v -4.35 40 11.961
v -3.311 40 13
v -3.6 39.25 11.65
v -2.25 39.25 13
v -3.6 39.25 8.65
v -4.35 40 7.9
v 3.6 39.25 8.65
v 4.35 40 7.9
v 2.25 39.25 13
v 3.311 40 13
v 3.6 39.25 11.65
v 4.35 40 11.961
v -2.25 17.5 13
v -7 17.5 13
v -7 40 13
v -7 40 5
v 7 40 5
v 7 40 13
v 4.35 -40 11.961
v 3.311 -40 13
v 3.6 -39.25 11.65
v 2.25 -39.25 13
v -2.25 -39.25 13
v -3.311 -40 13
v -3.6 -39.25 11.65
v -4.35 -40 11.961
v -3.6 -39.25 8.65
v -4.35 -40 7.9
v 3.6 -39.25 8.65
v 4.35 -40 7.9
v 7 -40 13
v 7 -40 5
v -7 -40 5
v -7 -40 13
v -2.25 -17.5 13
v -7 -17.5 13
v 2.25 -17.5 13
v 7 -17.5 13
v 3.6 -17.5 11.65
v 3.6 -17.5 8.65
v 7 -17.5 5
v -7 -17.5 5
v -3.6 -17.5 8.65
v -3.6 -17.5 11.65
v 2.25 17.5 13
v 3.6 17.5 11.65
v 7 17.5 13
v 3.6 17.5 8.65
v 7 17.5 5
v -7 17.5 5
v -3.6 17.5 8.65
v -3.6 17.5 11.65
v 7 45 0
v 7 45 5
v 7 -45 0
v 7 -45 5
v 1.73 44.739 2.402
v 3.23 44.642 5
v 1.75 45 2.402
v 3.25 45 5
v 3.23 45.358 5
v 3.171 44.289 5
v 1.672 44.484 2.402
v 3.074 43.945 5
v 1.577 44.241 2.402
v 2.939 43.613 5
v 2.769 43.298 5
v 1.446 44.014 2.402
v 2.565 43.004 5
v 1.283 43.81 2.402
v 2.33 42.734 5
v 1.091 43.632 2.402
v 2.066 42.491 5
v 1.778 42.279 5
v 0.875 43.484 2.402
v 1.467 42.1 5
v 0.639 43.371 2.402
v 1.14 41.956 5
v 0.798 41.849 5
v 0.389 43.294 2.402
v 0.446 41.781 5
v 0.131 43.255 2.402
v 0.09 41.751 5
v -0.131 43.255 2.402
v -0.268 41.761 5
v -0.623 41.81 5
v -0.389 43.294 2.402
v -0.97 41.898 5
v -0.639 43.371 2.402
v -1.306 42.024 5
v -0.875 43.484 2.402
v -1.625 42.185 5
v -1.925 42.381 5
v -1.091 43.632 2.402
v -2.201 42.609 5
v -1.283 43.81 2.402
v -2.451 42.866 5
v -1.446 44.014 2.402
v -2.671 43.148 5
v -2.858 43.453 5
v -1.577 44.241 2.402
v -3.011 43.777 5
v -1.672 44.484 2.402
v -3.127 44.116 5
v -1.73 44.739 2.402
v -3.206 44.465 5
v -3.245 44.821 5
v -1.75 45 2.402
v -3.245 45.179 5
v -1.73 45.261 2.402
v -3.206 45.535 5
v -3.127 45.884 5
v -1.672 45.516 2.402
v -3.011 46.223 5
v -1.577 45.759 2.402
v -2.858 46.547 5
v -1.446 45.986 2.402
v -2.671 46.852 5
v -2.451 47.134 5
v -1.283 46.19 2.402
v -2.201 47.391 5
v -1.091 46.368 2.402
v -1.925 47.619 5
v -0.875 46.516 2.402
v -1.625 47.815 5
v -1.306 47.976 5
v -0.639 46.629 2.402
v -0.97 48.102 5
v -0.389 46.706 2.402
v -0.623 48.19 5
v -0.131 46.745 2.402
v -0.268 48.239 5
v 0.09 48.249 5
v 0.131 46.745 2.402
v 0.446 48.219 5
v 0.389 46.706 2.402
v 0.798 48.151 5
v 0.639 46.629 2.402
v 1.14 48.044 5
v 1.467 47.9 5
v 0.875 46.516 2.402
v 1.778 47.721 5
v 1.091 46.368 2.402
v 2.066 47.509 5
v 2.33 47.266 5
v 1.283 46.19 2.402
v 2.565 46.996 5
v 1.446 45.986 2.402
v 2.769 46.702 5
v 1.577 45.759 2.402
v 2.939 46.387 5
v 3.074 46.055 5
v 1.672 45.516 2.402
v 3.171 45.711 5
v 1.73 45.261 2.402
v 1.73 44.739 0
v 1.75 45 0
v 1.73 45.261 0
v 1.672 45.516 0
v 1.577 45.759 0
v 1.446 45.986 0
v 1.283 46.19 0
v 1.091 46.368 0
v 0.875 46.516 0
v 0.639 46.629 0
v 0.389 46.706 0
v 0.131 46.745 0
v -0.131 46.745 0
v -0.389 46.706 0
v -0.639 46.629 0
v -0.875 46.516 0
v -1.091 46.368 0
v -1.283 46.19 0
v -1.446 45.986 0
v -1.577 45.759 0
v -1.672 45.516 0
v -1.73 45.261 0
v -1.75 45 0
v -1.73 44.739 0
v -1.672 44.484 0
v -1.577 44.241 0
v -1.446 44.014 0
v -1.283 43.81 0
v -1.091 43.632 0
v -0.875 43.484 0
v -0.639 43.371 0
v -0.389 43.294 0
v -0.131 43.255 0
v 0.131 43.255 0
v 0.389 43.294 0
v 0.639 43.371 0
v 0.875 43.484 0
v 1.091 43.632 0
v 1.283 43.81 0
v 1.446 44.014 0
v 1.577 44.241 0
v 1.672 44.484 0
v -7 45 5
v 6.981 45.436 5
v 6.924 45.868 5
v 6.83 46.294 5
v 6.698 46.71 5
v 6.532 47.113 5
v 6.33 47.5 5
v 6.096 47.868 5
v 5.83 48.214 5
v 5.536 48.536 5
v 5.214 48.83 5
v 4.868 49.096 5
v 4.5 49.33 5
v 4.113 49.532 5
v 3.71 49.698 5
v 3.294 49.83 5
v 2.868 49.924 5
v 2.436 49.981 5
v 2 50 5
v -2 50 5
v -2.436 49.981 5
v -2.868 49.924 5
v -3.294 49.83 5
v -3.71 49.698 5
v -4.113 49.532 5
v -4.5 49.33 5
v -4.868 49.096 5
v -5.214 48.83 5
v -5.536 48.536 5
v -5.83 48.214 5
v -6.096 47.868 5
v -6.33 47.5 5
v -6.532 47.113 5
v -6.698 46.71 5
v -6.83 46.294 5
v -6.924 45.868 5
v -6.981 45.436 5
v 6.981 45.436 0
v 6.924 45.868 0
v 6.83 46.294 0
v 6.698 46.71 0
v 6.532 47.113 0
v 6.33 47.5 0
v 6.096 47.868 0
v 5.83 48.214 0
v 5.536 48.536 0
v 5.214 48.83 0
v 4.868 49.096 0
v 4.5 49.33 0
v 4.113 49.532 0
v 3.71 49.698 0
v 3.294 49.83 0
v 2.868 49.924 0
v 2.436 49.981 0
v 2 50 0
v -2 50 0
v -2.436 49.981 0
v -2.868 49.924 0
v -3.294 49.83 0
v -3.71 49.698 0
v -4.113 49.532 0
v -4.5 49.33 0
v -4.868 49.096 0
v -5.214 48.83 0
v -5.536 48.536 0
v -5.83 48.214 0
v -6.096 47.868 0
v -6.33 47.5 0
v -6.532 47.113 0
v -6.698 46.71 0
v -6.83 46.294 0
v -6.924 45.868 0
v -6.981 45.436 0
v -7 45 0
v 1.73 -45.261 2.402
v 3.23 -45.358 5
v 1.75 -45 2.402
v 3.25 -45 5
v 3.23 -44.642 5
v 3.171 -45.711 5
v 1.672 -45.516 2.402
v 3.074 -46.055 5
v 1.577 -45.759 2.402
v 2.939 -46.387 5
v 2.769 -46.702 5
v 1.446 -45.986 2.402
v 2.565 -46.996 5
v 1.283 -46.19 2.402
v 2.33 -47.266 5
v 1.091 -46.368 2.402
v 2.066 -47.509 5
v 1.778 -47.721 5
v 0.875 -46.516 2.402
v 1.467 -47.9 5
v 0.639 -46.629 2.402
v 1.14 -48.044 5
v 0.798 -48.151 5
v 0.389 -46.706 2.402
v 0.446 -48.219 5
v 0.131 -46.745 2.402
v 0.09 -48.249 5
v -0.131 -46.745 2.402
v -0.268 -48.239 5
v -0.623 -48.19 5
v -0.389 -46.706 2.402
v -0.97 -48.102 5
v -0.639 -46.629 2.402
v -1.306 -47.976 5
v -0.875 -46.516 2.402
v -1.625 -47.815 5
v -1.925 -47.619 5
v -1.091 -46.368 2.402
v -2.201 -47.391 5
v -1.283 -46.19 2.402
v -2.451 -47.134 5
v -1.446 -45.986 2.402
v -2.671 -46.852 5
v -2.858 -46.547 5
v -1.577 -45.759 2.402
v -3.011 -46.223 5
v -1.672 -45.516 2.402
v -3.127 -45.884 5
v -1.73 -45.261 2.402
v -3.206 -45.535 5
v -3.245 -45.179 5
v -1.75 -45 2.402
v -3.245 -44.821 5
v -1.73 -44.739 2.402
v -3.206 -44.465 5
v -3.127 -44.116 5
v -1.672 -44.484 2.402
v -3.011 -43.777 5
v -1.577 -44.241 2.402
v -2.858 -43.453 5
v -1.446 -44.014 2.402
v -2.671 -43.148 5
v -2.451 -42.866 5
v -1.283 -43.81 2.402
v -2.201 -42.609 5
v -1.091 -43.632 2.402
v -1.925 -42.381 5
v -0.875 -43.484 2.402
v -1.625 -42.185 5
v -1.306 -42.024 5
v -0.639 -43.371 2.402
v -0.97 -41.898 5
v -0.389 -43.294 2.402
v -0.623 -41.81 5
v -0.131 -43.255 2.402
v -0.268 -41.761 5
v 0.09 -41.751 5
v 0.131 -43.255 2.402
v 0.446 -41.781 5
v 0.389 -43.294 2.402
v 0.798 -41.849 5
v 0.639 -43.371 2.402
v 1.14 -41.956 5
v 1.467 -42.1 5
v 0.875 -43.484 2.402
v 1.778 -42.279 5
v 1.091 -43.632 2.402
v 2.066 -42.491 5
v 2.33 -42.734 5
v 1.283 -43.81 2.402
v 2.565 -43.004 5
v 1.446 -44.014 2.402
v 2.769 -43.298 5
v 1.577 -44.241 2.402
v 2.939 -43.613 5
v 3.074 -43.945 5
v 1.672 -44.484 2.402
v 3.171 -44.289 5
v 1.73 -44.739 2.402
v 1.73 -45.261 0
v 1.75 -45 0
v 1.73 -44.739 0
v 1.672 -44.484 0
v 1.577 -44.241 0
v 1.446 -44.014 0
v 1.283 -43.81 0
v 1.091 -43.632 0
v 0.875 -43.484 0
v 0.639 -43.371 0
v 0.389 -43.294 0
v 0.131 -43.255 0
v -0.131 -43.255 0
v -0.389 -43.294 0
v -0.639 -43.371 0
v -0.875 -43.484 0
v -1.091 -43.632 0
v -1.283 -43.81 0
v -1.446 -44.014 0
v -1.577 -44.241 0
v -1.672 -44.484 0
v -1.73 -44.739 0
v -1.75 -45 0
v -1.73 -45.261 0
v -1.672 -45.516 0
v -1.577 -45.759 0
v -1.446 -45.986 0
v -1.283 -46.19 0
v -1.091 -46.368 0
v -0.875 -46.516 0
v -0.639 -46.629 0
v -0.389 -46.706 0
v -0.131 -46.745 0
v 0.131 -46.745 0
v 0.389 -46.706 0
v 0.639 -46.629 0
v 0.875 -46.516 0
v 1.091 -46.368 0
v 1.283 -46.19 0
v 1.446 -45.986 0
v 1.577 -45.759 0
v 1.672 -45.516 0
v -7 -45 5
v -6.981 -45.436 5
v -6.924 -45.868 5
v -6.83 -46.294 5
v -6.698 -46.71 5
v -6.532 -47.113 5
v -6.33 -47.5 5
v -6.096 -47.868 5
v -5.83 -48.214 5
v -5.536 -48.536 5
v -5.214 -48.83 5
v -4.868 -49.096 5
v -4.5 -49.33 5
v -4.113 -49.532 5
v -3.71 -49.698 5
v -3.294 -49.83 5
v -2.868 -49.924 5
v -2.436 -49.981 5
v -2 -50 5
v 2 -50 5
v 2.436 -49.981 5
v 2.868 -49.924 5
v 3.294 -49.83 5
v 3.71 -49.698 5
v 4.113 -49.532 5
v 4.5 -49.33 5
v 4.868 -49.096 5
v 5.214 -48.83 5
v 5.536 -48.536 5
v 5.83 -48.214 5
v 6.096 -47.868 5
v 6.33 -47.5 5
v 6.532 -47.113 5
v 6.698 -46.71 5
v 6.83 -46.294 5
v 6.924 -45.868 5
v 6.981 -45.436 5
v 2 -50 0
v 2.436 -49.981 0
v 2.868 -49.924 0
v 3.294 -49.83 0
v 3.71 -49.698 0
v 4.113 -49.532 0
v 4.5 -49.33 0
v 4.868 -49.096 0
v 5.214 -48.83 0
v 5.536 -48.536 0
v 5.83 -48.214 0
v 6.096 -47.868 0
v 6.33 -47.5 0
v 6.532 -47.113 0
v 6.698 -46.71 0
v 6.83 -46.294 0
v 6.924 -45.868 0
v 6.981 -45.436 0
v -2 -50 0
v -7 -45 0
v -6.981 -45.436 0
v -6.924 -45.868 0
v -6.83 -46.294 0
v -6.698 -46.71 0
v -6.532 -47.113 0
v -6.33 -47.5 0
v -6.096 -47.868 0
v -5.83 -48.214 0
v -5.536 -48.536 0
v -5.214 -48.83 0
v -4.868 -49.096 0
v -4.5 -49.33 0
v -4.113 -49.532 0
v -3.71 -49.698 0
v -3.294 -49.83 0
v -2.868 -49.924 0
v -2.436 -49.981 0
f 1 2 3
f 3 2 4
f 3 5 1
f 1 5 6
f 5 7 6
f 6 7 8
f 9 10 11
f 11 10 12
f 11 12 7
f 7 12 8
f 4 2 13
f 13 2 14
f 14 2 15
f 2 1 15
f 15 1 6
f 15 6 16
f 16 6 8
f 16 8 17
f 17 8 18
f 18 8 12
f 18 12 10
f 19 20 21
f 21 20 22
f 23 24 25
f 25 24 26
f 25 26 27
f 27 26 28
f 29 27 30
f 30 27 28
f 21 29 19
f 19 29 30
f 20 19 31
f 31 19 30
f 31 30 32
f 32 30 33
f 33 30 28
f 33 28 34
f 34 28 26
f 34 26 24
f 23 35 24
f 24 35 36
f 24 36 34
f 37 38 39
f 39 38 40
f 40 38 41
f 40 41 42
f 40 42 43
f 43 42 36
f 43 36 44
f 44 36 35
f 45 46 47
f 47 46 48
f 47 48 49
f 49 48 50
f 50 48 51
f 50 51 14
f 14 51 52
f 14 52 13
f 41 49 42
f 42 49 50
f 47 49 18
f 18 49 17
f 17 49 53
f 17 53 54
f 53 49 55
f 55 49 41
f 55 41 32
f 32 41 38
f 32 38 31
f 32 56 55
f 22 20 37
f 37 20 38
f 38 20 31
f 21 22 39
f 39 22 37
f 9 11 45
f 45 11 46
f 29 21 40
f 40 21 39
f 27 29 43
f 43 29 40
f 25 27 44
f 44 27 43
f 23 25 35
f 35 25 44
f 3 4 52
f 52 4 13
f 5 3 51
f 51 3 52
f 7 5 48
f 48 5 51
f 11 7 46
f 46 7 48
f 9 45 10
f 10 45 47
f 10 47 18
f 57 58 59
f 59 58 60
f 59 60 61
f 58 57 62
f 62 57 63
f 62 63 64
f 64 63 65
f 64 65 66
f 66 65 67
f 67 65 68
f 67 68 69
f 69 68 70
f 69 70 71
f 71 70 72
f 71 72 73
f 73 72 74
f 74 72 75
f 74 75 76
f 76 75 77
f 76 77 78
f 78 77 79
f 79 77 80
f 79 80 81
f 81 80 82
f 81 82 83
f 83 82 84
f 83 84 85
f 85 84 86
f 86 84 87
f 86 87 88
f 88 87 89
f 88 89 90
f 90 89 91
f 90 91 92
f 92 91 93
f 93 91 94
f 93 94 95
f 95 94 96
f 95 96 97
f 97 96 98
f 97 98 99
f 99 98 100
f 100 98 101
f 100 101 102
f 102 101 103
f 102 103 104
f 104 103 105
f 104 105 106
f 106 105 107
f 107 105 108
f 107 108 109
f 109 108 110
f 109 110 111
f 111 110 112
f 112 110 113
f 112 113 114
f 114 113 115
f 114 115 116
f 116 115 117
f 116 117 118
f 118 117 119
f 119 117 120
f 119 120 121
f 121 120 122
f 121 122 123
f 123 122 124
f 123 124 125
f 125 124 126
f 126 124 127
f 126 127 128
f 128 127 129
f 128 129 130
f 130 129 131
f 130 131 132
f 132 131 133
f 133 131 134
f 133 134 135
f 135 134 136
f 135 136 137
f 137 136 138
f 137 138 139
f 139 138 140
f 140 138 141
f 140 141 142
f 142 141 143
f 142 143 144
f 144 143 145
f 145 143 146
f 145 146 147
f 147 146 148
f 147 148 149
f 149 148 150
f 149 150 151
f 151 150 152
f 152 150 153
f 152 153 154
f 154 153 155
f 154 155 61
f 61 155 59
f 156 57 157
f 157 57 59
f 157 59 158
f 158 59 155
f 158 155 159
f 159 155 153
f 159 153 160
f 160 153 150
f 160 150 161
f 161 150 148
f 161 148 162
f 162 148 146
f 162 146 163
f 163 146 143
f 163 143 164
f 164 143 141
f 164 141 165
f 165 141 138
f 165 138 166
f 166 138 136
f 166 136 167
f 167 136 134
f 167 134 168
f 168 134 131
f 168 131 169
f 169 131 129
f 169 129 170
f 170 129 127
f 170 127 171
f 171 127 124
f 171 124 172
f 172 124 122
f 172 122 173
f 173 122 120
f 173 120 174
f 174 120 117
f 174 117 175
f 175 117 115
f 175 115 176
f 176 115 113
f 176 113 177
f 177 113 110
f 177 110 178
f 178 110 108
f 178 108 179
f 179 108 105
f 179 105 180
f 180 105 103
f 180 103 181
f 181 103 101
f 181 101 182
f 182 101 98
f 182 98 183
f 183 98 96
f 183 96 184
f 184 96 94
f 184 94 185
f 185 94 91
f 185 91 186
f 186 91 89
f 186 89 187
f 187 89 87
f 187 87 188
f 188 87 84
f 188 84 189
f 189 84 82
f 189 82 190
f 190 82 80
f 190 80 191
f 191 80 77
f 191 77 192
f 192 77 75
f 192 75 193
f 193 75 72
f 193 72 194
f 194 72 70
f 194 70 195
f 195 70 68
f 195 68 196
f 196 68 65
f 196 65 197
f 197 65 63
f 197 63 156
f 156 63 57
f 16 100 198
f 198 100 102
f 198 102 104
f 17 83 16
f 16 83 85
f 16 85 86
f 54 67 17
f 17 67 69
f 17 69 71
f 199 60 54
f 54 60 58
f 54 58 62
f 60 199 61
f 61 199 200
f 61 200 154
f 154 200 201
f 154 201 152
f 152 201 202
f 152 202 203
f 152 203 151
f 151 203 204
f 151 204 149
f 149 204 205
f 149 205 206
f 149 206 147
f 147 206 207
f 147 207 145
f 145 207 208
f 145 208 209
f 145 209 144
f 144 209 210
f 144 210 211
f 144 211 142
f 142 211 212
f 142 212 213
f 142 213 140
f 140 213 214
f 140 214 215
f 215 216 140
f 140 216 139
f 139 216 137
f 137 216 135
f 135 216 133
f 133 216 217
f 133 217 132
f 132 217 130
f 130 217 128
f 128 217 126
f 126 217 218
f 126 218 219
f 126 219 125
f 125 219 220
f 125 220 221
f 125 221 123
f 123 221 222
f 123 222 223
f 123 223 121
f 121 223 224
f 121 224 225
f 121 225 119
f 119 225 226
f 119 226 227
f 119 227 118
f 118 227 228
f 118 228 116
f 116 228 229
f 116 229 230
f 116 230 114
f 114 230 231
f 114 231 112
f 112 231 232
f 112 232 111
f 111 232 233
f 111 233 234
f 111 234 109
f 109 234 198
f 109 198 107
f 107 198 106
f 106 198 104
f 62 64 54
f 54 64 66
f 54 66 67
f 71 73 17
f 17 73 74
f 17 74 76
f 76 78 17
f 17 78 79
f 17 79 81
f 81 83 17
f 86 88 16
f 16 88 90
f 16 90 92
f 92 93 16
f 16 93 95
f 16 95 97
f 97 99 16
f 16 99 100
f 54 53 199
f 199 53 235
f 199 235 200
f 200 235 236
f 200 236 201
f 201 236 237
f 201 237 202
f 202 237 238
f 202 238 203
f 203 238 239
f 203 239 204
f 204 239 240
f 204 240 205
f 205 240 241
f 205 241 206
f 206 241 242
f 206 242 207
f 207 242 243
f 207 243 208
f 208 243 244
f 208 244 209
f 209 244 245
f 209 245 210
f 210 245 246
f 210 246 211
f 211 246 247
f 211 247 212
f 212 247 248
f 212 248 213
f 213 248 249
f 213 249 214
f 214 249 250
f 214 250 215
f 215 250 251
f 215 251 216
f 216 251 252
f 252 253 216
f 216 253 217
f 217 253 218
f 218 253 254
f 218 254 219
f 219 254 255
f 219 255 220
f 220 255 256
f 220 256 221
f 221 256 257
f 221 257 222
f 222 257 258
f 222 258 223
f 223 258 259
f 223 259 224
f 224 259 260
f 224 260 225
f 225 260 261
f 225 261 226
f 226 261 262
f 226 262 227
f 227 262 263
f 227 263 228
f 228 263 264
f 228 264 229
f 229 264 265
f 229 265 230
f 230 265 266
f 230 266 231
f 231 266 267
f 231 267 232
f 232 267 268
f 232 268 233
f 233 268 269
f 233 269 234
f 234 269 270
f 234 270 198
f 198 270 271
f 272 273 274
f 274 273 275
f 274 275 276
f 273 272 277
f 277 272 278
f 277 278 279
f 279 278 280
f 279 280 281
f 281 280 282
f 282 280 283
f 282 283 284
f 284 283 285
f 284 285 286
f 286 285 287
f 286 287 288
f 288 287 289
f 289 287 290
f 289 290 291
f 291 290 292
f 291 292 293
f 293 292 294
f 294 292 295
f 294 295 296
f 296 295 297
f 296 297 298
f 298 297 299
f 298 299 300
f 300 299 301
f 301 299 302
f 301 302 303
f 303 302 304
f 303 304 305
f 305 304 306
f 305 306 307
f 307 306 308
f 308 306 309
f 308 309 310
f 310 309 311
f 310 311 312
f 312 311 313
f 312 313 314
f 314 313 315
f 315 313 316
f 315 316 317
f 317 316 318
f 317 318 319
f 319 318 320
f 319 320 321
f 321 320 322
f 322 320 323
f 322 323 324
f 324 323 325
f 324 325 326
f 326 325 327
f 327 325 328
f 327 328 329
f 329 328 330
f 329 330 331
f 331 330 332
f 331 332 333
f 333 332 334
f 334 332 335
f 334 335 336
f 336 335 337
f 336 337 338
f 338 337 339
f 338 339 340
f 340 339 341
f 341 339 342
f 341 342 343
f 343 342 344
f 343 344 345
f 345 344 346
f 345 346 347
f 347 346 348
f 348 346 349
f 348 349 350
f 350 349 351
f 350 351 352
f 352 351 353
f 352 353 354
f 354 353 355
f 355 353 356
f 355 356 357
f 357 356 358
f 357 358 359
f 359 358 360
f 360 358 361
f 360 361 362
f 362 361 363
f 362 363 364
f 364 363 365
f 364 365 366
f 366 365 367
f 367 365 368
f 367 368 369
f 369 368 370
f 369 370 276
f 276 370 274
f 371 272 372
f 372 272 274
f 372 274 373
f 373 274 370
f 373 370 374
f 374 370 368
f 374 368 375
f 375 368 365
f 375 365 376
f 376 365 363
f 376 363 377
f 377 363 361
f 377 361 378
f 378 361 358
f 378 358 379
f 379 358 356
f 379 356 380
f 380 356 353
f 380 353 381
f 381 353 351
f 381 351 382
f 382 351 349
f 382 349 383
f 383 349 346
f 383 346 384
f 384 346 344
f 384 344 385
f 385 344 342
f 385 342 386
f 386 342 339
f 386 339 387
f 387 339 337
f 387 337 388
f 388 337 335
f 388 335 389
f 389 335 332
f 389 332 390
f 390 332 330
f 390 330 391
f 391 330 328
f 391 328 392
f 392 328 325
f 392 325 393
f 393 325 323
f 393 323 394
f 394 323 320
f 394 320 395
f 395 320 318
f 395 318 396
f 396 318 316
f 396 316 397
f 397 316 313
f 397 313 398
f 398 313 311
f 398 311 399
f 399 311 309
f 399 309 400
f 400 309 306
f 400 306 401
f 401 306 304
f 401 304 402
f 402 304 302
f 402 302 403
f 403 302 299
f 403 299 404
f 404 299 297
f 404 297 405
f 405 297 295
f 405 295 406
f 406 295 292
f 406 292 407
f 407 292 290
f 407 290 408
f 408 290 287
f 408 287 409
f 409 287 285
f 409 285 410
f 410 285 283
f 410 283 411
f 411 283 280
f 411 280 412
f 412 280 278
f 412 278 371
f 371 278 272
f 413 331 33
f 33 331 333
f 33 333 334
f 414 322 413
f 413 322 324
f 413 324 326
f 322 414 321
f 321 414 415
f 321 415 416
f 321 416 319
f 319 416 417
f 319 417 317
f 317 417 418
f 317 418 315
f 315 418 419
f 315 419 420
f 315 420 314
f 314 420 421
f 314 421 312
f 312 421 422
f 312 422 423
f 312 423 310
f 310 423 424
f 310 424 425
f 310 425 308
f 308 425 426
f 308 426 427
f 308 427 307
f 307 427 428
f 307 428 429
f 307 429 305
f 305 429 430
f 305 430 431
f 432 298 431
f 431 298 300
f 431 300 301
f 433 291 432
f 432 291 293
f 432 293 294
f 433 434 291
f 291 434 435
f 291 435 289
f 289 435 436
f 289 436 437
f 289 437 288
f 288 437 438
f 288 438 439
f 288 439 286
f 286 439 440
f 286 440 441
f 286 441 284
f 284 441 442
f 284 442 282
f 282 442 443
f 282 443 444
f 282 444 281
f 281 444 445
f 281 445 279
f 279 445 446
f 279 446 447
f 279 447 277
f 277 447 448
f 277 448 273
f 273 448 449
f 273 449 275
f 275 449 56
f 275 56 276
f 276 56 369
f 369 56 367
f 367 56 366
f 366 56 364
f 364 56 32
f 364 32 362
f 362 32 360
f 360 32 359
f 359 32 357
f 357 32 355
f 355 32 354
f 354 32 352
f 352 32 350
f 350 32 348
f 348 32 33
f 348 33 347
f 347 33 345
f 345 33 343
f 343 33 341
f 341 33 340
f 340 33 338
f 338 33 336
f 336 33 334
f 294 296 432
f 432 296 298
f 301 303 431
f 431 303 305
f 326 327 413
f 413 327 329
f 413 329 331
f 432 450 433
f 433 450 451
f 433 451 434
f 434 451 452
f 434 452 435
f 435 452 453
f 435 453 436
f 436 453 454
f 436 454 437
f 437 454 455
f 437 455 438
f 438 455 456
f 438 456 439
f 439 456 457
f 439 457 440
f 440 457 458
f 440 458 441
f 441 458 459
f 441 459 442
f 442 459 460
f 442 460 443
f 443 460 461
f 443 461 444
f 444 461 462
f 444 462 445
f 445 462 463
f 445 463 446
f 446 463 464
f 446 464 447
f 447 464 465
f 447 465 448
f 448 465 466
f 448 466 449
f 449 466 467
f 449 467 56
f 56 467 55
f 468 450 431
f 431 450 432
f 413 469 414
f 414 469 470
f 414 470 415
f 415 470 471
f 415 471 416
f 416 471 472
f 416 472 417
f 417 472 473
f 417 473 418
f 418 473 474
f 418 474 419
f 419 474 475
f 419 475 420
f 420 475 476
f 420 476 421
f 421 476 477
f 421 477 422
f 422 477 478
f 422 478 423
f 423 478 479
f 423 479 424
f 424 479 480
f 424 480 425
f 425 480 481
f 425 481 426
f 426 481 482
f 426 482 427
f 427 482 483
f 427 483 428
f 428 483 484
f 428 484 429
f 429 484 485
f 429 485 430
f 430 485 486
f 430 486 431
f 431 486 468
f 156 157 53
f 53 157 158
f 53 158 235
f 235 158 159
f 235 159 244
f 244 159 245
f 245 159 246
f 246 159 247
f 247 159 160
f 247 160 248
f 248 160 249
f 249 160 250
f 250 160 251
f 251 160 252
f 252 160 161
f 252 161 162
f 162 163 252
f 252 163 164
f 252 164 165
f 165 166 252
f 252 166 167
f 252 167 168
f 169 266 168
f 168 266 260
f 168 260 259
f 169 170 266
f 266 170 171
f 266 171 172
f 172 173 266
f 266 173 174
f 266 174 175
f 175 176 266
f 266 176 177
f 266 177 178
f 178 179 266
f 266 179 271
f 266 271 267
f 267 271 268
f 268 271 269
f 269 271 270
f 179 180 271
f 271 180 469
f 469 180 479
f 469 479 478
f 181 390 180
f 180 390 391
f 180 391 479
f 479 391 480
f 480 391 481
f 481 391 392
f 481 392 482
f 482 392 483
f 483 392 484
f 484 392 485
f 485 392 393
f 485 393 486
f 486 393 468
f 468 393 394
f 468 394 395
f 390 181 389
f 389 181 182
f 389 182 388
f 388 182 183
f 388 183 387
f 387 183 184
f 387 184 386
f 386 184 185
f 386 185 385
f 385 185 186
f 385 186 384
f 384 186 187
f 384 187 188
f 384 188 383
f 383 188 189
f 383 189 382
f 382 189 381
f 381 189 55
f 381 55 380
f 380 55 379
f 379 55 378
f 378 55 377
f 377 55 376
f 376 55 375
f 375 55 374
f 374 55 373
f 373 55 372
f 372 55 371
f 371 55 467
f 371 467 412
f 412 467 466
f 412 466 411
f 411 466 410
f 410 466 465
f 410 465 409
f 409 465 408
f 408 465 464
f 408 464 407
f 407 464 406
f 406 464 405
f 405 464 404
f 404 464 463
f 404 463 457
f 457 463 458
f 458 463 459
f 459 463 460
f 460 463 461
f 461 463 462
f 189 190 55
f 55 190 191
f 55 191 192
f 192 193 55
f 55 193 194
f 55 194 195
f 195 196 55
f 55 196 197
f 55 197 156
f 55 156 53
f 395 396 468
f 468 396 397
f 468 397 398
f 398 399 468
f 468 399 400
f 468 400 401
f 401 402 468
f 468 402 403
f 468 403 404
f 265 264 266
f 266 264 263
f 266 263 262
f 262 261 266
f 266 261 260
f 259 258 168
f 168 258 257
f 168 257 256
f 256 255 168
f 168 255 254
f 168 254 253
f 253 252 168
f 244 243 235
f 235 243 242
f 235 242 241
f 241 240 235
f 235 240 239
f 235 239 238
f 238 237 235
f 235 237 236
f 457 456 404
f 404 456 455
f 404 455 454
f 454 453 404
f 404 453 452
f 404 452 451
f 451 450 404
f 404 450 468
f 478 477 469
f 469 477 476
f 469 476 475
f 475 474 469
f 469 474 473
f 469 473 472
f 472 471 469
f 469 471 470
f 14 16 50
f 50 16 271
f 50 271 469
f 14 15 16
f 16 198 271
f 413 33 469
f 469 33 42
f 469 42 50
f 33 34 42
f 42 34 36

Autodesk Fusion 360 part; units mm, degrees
sketch "Sketch1" plane through (0, 0, 0) normal (0, 1, 0) x (1, 0, 0)
  line L0 (-7, -13) -> (7, -13)
  line L1 (7, -13) -> (7, 0)
  line L2 (7, 0) -> (-7, 0)
  line L3 (-7, 0) -> (-7, -13)
  line L4 (-3.5, -13) -> (3.5, -13) construction
  line L5 (3.5, -13) -> (3.5, -8.75) construction
  line L6 (3.5, -8.75) -> (-3.5, -8.75) construction
  line L7 (-3.5, -8.75) -> (-3.5, -13) construction
  line L8 (-3.5, -11.75) -> (-2.25, -13) construction
  line L9 (2.25, -13) -> (3.5, -11.75) construction
  line L10 (0, -8.75) -> (0, 0) construction
  dimension "d3" = 7
  dimension "d4" = 1.25
  dimension "d5" = 1.25
  dimension "d6" = 3
  dimension "d7" = 45
  dimension "d8" = 3.5
  dimension "d9" = 3.5
  dimension "d10" = 13
extrude "Extrude1" add sketch "Sketch1" along normal mid plane 80
sketch "Sketch2" plane through (0, 0, 0) normal (0, 0, 1) x (1, 0, 0)
  line L0 (-7, -40) -> (7, -40)
  line L1 (7, -40) -> (7, -45)
  line L2 (2, -50) -> (-2, -50)
  line L3 (-7, -45) -> (-7, -40)
  arc A0 (2, -50) -> (7, -45) centre (2, -45) ccw
  arc A1 (-7, -45) -> (-2, -50) centre (-2, -45) ccw
  line L4 (7, -40) -> (-7, -40)
  point P0 (7, -50)
  dimension "d13" = 10
  dimension "d14" = 5
extrude "Extrude2" add sketch "Sketch2" along normal blind 5
sketch "Sketch3" plane through (0, 0, 5) normal (0, 0, 1) x (-1, 0, 0)
  line L0 (7, 40) -> (7, 45)
  arc A0 (7, 45) -> (2, 50) centre (2, 45) ccw
  line L1 (2, 50) -> (-2, 50)
  arc A1 (-2, 50) -> (-7, 45) centre (-2, 45) ccw
  line L2 (-7, 45) -> (-7, 40)
  line L3 (-7, 40) -> (7, 40)
  circle A2 centre (0, 45) radius 1.75
  line L4 (-7, 45) -> (7, 45) construction
  dimension "d20" = 3.5
extrude "Extrude3" cut sketch "Sketch3" against normal blind 5 contours A2
chamfer "Chamfer1" distance 1.5 angle 60 1 edges at (1.6316, -45.6328, 5) measured on face at (-5.1922, -43.0802, 5)
mirror "Mirror1" about plane through (0, 0, 0) normal (0, 1, 0) of "Extrude2", "Extrude3", "Chamfer1"
sketch "Sketch4" plane through (0, -40, 0) normal (0, -1, 0) x (1, 0, 0)
  line L0 (-7, 5) -> (7, 5)
  line L1 (7, 5) -> (7, 13)
  line L2 (7, 13) -> (-7, 13)
  line L3 (-7, 13) -> (-7, 5)
  line L4 (-3.5, 8.75) -> (-3.5, 13) construction
  line L5 (-3.5, 11.75) -> (-2.25, 13) construction
  line L6 (2.25, 13) -> (3.5, 11.75) construction
  line L7 (3.5, 13) -> (3.5, 8.75) construction
  line L8 (3.5, 8.75) -> (-3.5, 8.75) construction
  line L9 (3.6, 13) -> (3.6, 8.65)
  line L10 (3.6, 8.65) -> (-3.6, 8.65)
  line L11 (-3.6, 8.65) -> (-3.6, 13)
  line L12 (-2.25, 13) -> (-3.6, 11.65)
  line L13 (2.25, 13) -> (3.6, 11.65)
  dimension "d25" = -0.1
extrude "Extrude4" cut sketch "Sketch4" against normal up to surface (80 mm away) contours L2 L9 L10 L11 L12 L13
sketch "Sketch5" plane through (-7, 0, 0) normal (-1, 0, 0) x (0, -1, 0)
  line L0 (40, 13) -> (-40, 13)
  line L1 (-40, 13) -> (-40, 5)
  line L2 (-40, 5) -> (-45, 5)
  line L3 (-45, 5) -> (-45, 0)
  line L4 (-45, 0) -> (45, 0)
  line L5 (45, 0) -> (45, 5)
  line L6 (45, 5) -> (40, 5)
  line L7 (40, 5) -> (40, 13)
  line L8 (-17.5, 13) -> (17.5, 13)
  line L9 (17.5, 13) -> (17.5, 5)
  line L10 (17.5, 5) -> (-17.5, 5)
  line L11 (-17.5, 5) -> (-17.5, 13)
  line L12 (0, 0) -> (0, 5) construction
  dimension "d28" = 35
extrude "Extrude5" cut sketch "Sketch5" against normal up to surface (14 mm away) contours L0 L8 L9 L10 L11
chamfer "Chamfer2" distance 0.75 angle 45 10 edges at (-2.925, -40, 12.325) (-3.6, -40, 10.15) (0, -40, 8.65) (3.6, -40, 10.15) (2.925, -40, 12.325) (2.925, 40, 12.325) (3.6, 40, 10.15) (0, 40, 8.65) (-3.6, 40, 10.15) (-2.925, 40, 12.325)
